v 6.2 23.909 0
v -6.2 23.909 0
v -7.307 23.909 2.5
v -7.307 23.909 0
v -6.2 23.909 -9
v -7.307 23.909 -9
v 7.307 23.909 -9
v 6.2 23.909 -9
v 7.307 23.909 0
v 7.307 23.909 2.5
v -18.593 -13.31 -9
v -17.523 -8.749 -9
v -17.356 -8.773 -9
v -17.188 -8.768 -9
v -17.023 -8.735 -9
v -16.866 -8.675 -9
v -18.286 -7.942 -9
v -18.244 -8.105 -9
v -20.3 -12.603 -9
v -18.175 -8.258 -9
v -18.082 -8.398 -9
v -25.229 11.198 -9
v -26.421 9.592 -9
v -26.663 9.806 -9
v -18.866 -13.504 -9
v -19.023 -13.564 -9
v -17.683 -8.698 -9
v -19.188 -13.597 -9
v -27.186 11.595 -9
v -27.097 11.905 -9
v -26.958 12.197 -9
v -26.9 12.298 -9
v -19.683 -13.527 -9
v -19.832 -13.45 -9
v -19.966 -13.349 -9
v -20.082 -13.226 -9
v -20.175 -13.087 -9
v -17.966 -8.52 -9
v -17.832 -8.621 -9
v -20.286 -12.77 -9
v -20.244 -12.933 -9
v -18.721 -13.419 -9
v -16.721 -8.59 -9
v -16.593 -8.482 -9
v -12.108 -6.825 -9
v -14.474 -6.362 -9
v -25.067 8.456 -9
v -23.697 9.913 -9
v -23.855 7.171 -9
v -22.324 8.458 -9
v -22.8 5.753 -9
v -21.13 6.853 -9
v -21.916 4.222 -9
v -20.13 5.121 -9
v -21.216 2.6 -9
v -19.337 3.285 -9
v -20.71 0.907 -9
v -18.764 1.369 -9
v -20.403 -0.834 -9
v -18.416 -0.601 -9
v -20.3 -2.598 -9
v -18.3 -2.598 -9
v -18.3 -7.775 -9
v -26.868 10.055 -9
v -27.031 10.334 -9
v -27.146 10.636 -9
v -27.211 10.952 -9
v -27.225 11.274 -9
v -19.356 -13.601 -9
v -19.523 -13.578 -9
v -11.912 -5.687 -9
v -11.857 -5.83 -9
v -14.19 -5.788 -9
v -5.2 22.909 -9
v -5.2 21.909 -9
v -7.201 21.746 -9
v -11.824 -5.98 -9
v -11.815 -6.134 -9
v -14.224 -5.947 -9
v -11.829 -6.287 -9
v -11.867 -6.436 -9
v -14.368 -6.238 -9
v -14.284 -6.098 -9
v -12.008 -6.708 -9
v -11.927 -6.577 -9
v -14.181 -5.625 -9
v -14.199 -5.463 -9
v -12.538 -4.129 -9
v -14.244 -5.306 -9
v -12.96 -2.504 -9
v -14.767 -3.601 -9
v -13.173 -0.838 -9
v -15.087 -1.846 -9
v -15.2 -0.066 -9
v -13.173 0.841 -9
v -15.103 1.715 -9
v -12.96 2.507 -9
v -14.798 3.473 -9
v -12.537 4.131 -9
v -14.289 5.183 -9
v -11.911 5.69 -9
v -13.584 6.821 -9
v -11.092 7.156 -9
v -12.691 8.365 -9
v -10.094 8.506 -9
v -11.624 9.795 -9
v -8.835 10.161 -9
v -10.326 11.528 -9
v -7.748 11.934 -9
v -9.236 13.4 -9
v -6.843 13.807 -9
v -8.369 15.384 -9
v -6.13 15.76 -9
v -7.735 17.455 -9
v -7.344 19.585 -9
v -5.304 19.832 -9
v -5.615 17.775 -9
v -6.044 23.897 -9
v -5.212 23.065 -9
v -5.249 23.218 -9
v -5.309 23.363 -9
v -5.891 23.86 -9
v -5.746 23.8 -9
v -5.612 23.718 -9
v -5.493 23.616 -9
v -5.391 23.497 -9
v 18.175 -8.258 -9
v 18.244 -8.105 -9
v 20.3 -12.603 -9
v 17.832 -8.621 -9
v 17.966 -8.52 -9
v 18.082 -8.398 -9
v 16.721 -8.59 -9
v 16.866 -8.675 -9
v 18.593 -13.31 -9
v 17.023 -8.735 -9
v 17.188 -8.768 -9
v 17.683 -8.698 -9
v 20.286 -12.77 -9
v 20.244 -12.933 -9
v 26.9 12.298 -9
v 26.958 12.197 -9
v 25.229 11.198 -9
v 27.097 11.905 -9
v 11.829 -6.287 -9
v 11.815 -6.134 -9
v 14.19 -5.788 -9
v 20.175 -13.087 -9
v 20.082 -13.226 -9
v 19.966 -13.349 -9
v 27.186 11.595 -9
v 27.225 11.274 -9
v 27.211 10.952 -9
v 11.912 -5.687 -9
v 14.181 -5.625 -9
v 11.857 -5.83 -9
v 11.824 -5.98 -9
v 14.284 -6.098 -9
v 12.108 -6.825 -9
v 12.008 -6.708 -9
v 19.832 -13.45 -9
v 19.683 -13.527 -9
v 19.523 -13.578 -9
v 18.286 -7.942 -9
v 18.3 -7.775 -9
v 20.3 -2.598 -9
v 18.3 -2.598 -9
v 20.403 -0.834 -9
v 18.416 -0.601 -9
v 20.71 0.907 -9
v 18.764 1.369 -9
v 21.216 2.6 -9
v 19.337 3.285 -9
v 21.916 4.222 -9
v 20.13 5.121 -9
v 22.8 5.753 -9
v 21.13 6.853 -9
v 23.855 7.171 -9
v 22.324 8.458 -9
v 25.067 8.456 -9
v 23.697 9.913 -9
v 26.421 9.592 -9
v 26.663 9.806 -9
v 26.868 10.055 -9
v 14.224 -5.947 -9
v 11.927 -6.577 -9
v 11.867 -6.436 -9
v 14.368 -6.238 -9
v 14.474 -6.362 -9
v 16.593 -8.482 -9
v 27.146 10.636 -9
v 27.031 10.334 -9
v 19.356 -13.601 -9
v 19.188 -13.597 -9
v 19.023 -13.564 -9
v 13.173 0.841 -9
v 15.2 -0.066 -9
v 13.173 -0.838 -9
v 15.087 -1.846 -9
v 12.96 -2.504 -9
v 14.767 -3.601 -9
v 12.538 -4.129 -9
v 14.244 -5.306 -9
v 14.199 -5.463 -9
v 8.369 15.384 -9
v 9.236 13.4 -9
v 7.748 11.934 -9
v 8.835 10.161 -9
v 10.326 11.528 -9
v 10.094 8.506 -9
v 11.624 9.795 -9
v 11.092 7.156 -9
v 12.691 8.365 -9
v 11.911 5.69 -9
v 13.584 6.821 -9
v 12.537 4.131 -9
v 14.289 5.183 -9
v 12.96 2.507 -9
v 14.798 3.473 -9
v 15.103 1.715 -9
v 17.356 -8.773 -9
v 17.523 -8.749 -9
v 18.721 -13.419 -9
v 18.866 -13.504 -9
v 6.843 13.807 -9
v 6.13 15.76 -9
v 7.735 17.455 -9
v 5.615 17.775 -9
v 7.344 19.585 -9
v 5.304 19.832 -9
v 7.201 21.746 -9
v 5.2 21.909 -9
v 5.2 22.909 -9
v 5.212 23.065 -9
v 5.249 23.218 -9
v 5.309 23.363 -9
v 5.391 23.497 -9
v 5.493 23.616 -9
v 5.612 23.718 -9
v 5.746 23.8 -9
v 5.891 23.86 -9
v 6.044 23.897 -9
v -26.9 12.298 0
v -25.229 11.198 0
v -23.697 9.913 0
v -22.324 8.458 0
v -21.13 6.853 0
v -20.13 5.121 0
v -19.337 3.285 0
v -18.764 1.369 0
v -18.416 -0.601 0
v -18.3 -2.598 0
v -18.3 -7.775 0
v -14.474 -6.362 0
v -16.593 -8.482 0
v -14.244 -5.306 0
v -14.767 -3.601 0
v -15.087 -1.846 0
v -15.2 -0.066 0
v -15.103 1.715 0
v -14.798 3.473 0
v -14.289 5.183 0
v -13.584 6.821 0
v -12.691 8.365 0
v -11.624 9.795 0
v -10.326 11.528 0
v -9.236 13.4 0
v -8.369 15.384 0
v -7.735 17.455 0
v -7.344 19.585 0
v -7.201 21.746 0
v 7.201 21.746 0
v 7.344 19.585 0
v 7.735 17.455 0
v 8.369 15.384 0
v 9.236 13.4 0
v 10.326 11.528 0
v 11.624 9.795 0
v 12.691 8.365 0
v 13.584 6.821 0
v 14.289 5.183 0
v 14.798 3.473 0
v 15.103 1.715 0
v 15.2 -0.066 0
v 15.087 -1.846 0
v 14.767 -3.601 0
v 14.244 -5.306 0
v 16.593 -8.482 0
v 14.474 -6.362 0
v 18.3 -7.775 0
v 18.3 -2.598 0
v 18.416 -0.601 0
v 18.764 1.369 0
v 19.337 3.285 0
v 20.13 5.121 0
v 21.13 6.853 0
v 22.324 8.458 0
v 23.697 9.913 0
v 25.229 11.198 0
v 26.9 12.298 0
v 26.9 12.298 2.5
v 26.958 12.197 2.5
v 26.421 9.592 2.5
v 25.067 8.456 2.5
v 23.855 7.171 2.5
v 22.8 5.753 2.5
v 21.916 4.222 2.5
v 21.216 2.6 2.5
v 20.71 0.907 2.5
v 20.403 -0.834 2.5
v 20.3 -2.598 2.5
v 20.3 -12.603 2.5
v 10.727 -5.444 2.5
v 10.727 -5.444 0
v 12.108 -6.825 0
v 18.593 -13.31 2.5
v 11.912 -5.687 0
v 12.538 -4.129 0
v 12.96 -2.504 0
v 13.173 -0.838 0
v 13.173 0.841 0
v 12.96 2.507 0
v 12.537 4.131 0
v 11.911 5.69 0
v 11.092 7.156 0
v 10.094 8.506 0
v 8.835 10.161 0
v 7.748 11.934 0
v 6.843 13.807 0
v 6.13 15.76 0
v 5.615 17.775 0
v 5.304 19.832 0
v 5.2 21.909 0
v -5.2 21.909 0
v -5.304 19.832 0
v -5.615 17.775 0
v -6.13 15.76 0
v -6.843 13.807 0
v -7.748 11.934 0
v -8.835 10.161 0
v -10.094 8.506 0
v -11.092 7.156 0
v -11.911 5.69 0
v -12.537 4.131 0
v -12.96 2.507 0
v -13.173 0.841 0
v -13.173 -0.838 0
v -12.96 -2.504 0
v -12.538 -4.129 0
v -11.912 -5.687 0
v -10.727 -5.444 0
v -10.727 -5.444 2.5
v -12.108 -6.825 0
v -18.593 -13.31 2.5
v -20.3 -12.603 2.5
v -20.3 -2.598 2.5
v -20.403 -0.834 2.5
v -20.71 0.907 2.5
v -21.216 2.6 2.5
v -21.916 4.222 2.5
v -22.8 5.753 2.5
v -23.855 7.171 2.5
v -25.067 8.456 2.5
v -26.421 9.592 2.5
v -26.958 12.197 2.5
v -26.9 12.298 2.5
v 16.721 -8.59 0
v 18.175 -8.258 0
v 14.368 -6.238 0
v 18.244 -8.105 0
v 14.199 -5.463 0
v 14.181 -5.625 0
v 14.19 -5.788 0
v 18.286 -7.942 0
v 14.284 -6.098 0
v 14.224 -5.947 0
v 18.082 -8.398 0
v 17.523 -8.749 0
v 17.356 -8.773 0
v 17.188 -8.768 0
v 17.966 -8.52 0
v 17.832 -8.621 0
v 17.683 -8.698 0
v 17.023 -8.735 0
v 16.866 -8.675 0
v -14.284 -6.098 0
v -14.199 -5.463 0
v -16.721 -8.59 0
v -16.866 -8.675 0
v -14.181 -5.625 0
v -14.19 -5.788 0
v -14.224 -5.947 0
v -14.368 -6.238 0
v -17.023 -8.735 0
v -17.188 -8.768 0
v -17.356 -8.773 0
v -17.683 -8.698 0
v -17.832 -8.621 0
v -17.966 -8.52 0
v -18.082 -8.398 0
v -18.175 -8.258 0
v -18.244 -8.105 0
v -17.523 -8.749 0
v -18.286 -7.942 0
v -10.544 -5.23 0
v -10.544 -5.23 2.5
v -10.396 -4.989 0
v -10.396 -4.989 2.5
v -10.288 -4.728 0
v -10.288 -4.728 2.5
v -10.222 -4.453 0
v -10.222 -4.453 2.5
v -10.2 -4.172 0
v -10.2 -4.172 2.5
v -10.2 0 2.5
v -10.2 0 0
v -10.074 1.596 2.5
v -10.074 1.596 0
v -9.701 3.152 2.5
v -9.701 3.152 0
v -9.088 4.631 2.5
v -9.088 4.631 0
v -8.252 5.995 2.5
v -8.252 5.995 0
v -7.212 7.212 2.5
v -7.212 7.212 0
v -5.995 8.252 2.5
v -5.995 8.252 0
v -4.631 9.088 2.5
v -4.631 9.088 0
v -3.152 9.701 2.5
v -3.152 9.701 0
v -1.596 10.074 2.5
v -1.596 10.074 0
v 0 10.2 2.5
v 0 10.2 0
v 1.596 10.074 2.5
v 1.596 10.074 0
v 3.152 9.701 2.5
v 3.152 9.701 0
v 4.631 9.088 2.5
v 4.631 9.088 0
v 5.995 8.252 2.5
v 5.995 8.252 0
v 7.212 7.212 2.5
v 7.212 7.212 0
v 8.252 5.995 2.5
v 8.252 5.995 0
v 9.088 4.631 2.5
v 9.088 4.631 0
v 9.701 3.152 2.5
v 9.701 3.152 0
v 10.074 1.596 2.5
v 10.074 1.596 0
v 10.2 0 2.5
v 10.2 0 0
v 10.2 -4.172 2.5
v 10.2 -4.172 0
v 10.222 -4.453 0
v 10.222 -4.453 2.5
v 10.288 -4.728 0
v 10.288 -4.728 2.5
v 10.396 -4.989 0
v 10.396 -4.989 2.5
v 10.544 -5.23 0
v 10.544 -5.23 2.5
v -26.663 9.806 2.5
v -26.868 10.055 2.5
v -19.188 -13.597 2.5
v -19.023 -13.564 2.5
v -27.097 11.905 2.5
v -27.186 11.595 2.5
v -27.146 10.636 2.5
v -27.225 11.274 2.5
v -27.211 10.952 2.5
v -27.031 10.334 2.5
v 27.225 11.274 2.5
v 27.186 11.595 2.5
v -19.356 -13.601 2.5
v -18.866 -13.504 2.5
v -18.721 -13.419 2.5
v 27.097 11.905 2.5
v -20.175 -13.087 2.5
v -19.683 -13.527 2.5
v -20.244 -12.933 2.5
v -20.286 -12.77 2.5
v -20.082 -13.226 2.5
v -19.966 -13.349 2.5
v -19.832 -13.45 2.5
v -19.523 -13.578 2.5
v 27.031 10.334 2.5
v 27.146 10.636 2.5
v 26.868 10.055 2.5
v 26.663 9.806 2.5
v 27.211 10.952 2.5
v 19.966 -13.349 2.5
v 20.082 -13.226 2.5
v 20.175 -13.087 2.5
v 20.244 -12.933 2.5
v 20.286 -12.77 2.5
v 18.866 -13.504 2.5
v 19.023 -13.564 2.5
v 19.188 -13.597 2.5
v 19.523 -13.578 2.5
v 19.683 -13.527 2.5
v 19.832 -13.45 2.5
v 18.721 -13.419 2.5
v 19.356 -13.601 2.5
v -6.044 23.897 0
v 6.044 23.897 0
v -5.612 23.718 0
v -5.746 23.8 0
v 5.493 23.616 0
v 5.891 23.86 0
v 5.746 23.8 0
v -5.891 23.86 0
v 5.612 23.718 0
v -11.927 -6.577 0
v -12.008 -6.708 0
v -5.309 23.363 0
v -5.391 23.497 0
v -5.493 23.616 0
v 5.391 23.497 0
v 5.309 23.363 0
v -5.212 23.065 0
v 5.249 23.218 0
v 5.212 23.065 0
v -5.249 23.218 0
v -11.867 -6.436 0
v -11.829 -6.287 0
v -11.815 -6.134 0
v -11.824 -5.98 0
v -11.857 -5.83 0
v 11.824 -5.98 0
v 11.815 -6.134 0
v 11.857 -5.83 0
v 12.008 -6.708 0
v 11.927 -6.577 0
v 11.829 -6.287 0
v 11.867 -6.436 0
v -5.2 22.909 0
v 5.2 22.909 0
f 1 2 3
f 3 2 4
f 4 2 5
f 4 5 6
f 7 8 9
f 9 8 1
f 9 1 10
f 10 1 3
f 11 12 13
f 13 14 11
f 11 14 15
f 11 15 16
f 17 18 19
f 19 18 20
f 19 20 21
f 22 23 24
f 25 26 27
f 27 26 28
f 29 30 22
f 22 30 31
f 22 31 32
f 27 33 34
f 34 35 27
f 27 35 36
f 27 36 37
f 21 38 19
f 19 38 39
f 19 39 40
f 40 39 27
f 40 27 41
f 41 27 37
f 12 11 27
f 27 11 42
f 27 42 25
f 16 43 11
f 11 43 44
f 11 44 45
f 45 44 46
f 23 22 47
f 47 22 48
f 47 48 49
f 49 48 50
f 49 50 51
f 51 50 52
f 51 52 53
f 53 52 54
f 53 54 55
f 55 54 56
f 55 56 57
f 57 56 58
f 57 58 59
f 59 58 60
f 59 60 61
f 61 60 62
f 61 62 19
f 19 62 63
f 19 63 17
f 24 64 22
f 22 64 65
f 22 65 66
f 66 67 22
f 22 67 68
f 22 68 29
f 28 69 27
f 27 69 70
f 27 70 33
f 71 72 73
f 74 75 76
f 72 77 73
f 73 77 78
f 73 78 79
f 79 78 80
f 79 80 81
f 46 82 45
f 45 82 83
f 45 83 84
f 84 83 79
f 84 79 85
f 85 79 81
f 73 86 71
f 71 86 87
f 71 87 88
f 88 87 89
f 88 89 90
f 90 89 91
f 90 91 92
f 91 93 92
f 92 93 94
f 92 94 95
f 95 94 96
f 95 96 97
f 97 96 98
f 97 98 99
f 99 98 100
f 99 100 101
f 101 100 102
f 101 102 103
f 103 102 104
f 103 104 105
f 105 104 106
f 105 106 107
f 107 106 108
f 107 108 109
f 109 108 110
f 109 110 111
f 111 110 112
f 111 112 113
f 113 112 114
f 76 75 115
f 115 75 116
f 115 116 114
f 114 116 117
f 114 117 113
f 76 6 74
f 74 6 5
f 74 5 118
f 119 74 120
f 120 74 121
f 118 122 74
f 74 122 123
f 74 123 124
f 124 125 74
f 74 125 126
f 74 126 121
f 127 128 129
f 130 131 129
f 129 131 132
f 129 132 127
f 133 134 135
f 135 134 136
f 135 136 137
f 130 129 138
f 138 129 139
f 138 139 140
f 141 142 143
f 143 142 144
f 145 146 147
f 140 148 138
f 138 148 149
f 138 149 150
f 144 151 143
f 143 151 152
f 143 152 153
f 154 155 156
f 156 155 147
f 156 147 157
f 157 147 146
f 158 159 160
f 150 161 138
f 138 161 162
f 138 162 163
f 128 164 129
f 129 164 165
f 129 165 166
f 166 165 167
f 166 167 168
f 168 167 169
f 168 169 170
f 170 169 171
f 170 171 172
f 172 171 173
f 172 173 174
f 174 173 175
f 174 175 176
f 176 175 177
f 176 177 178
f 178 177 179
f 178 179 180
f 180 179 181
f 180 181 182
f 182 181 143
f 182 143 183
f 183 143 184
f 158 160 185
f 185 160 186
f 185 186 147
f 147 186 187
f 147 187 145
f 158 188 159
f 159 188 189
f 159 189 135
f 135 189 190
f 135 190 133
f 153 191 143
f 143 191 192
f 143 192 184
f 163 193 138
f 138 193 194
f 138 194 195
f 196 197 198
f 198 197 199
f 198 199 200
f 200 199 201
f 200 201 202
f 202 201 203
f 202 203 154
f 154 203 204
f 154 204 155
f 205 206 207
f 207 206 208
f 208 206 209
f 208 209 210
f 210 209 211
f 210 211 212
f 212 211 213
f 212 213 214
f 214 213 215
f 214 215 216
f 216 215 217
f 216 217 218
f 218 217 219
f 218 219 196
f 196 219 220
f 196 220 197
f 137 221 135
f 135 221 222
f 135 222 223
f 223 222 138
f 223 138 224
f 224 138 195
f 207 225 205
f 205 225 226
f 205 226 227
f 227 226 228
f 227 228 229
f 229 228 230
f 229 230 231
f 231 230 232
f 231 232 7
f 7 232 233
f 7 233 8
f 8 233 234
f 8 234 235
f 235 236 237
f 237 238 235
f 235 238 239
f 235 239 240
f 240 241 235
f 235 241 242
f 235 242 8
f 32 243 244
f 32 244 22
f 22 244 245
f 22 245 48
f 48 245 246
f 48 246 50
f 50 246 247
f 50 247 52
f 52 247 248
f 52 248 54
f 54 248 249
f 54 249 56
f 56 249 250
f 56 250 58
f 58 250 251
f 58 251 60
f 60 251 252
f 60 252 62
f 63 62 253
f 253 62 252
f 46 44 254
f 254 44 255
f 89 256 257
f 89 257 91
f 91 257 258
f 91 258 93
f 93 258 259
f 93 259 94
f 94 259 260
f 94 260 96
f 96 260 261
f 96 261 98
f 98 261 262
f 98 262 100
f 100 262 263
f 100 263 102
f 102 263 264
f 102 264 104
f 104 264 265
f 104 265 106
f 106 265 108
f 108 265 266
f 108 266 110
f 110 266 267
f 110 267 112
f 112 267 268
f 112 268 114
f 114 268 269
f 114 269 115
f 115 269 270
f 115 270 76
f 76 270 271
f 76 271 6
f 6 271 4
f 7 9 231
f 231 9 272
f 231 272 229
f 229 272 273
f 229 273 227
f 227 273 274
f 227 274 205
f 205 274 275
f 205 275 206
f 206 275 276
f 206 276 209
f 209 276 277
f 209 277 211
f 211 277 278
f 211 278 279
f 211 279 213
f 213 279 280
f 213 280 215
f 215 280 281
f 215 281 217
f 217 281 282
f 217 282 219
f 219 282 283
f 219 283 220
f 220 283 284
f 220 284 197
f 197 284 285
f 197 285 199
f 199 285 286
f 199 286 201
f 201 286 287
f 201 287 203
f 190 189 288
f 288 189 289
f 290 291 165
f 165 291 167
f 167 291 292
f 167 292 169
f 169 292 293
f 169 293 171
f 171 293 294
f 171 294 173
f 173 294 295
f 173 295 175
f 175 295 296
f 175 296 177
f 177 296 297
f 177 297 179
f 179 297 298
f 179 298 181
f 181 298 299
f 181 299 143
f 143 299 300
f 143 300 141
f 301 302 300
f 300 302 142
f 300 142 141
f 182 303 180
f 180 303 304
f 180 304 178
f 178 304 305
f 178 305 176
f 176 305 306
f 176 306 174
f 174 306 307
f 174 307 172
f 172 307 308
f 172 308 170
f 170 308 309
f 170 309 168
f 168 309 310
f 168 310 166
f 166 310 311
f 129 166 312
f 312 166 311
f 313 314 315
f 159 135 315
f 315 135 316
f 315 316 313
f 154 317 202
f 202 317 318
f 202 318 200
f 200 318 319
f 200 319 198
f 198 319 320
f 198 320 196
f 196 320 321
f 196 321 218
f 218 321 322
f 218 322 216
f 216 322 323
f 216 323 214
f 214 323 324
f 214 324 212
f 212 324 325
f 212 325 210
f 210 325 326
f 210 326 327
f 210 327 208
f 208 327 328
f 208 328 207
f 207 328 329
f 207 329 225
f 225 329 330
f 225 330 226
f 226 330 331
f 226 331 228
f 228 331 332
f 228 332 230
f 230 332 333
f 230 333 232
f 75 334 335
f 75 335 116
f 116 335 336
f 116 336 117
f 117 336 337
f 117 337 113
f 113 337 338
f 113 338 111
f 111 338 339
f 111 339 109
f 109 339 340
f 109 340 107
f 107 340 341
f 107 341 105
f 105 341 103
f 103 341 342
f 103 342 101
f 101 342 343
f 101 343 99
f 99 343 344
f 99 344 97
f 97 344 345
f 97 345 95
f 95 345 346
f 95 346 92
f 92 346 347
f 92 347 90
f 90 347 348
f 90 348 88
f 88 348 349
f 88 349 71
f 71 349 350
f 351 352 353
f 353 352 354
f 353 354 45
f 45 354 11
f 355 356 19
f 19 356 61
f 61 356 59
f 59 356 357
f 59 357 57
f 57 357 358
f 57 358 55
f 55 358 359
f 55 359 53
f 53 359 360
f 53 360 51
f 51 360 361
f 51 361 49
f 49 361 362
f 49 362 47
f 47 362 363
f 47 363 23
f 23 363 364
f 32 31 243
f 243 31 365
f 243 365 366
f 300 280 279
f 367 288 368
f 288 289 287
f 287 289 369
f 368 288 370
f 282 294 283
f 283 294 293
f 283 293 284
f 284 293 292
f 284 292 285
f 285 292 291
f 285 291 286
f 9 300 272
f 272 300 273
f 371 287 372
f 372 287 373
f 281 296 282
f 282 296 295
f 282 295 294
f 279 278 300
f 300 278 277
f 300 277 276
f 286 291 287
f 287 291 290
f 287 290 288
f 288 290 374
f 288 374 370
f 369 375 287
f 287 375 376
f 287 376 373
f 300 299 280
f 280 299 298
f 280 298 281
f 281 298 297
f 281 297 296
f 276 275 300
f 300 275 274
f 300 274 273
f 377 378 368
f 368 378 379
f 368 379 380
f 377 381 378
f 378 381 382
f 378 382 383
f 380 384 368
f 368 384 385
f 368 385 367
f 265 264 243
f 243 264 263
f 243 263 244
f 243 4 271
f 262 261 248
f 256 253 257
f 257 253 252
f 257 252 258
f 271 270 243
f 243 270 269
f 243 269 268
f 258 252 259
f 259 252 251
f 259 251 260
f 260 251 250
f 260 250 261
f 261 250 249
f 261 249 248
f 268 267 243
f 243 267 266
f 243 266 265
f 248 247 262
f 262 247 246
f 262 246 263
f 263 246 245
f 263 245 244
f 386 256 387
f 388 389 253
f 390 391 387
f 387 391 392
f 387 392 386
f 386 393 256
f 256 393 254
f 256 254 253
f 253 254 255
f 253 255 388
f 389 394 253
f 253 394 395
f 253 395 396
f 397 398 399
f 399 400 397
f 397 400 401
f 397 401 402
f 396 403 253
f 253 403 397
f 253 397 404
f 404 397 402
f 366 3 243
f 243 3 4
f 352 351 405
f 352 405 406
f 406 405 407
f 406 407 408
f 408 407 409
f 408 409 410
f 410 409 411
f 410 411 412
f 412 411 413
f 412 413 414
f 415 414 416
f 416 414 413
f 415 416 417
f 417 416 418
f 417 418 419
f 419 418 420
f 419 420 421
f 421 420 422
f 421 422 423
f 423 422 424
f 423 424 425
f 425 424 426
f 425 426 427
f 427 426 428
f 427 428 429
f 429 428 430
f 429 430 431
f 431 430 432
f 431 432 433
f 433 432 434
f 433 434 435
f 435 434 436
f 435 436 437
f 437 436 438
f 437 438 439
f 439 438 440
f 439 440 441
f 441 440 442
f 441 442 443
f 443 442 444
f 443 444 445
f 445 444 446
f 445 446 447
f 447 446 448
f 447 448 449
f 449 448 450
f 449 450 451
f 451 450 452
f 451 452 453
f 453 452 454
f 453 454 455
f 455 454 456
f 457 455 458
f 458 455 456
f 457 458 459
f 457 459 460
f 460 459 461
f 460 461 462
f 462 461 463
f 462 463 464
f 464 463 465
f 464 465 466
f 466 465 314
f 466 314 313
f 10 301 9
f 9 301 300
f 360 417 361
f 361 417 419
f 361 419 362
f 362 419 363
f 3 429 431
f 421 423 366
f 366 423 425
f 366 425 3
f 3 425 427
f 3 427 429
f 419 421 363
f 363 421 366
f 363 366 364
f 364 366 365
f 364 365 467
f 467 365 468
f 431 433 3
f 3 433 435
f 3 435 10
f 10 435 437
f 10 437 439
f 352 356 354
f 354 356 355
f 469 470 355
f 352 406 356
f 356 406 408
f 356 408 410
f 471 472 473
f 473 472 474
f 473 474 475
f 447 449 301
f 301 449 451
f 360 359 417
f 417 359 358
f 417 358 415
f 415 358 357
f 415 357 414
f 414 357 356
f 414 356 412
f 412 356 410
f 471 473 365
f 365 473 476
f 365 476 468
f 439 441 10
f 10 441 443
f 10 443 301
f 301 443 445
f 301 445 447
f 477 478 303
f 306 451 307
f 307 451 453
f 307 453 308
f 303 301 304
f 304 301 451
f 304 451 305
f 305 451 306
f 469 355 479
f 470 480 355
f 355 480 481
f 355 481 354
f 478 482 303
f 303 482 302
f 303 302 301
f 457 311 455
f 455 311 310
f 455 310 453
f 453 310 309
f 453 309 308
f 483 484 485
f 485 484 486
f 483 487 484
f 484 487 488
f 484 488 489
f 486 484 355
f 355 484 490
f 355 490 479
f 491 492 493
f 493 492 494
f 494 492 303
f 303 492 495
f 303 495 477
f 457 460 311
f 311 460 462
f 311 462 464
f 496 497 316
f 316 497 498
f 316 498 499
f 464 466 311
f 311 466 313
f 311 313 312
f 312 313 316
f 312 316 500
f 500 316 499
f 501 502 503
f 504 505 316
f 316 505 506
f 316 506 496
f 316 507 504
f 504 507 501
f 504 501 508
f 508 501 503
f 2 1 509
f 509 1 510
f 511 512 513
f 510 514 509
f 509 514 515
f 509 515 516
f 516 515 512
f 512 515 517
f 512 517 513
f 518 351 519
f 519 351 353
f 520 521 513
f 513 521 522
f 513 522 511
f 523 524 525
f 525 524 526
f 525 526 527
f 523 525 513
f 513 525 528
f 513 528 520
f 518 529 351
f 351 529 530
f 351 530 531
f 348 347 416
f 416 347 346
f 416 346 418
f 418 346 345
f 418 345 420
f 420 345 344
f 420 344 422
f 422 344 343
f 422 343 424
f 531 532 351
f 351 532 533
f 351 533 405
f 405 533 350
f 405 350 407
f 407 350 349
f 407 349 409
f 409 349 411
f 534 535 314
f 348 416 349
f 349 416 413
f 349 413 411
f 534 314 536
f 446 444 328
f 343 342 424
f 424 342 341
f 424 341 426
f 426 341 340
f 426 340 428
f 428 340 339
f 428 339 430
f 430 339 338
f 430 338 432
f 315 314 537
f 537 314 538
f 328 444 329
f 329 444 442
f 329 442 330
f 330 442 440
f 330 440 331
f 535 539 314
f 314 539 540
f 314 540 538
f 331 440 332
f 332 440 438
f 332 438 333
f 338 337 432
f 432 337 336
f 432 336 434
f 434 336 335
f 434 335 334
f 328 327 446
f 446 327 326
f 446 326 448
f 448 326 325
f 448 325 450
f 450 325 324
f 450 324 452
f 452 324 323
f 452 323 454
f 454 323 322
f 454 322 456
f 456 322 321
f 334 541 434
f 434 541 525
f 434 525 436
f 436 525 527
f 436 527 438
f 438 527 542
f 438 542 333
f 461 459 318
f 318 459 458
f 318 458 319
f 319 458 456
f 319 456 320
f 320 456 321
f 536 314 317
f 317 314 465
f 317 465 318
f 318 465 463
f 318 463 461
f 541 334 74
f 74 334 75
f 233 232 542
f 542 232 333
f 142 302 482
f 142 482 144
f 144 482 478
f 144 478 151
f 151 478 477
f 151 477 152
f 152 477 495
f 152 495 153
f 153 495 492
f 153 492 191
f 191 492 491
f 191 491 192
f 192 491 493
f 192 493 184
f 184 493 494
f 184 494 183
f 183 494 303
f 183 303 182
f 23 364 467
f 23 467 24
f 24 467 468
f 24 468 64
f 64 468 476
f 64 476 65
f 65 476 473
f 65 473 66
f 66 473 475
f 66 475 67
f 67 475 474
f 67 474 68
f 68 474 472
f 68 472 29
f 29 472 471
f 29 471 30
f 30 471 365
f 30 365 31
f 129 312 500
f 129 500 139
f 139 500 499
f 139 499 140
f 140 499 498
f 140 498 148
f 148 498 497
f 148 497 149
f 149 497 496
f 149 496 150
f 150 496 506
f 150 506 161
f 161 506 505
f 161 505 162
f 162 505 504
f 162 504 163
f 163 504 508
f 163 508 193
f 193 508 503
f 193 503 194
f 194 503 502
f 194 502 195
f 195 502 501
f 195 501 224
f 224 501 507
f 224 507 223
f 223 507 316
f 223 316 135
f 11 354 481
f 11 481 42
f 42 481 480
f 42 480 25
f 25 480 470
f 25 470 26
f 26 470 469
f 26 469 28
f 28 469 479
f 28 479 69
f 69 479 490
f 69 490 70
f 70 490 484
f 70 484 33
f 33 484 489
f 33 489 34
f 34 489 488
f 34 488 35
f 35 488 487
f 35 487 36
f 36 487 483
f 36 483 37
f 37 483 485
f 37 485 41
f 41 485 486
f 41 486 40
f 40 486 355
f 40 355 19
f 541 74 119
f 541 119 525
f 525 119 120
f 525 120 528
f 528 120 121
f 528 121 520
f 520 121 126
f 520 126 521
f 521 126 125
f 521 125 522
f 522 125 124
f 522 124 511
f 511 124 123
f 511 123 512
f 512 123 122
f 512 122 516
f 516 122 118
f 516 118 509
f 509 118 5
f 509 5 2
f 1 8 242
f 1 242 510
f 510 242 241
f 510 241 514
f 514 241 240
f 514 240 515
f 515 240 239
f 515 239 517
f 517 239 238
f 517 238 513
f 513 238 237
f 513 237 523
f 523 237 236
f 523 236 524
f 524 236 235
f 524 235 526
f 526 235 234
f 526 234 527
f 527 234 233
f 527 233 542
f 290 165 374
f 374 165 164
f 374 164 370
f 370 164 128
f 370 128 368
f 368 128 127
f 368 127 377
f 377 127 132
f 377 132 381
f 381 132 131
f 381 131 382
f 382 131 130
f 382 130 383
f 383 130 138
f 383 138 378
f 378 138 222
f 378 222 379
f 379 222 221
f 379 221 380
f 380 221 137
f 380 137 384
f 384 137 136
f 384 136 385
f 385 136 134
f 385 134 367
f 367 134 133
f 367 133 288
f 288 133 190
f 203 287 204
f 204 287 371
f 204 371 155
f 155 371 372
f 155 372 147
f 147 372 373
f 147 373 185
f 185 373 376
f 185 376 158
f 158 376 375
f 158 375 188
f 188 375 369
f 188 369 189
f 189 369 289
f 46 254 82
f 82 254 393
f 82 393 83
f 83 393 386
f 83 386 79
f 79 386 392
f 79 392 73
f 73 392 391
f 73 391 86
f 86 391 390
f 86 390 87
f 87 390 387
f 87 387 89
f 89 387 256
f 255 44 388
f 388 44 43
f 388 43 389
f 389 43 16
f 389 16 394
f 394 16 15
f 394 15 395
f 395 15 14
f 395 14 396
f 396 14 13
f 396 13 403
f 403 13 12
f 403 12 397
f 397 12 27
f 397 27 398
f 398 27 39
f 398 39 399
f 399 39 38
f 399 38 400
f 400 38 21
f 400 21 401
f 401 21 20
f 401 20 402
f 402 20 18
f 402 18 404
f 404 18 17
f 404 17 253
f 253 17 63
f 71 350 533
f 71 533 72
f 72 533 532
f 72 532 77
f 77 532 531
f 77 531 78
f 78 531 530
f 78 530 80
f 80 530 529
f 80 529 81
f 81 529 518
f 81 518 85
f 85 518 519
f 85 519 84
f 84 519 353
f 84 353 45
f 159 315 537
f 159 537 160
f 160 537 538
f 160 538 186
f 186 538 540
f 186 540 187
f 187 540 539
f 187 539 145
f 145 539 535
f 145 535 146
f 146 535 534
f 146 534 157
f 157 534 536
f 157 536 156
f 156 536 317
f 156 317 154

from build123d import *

# Parameters (mm, degrees)
EXTRUDE_THIN1_DEPTH = 9
BOSS_EXTRUDE1_START = 2.5
BOSS_EXTRUDE1_DEPTH = 2.5
SKETCH7_W           = 10.4
SKETCH7_H           = 2
CUT_EXTRUDE2_DEPTH  = 9
FILLET1_R           = 2
FILLET2_R           = 1
FILLET3_R           = 1


with BuildPart() as part:
    # Sketch4 → Extrude-Thin1 (new body)
    with BuildSketch(Plane.XY):
        with BuildLine():
            ThreePointArc((-27.9, 10.565509926), (-22.336413862, 5.001923789), (-20.3, -2.598076211))
            Line((-20.3, -2.598076211), (-20.3, -13))
            ThreePointArc((-20.3, -13), (-20.132058957, -13.759199288), (-19.659573823, -14.37673111))
            Line((-19.659573823, -14.37673111), (-11.593677676, -6.310834964))
            ThreePointArc((-11.593677676, -6.310834964), (-13.132911027, 1.329153101), (-10.094117647, 8.505809128))
            ThreePointArc((-10.094117647, 8.505809128), (-6.461802118, 14.774561158), (-5.2, 21.9089023))
            Line((-5.2, 21.9089023), (5.2, 21.9089023))
            ThreePointArc((5.2, 21.9089023), (6.461802118, 14.774561158), (10.094117647, 8.505809128))
            ThreePointArc((10.094117647, 8.505809128), (13.132911027, 1.329153101), (11.593677676, -6.310834964))
            Line((11.593677676, -6.310834964), (19.659573823, -14.37673111))
            ThreePointArc((19.659573823, -14.37673111), (20.132058957, -13.759199288), (20.3, -13))
            Line((20.3, -13), (20.3, -2.598076211))
            ThreePointArc((20.3, -2.598076211), (22.336413862, 5.001923789), (27.9, 10.565509926))
            Line((27.9, 10.565509926), (26.9, 12.297560734))
            ThreePointArc((26.9, 12.297560734), (20.604363055, 6.001923789), (18.3, -2.598076211))
            Line((18.3, -2.598076211), (18.3, -10.188730163))
            Line((18.3, -10.188730163), (14.009117998, -5.897848161))
            ThreePointArc((14.009117998, -5.897848161), (15.027346247, 2.28448348), (11.623529412, 9.794568087))
            ThreePointArc((11.623529412, 9.794568087), (8.022061411, 16.410382128), (7.306685687, 23.9089023))
            Line((7.306685687, 23.9089023), (-7.306685687, 23.9089023))
            ThreePointArc((-7.306685687, 23.9089023), (-8.022061411, 16.410382128), (-11.623529412, 9.794568087))
            ThreePointArc((-11.623529412, 9.794568087), (-15.027346247, 2.28448348), (-14.009117998, -5.897848161))
            Line((-14.009117998, -5.897848161), (-18.3, -10.188730163))
            Line((-18.3, -10.188730163), (-18.3, -2.598076211))
            ThreePointArc((-18.3, -2.598076211), (-20.604363055, 6.001923789), (-26.9, 12.297560734))
            Line((-26.9, 12.297560734), (-27.9, 10.565509926))
        make_face()
    extrude(amount=-EXTRUDE_THIN1_DEPTH)

    # Sketch5 → Boss-Extrude1 (add)
    with BuildSketch(Plane.XY.offset(BOSS_EXTRUDE1_START)):
        with BuildLine():
            Line((-26.9, 12.297560734), (-7.306685687, 23.9089023))
            ThreePointArc((-7.306685687, 23.9089023), (-8.022061411, 16.410382128), (-11.623529412, 9.794568087))
            ThreePointArc((-11.623529412, 9.794568087), (-15.027346247, 2.28448348), (-14.009117998, -5.897848161))
            Line((-14.009117998, -5.897848161), (-18.3, -10.188730163))
            Line((-18.3, -10.188730163), (-18.3, -2.598076211))
            ThreePointArc((-18.3, -2.598076211), (-20.604363055, 6.001923789), (-26.9, 12.297560734))
        make_face()
        with BuildLine():
            ThreePointArc((-18.3, -2.598076211), (-20.604363055, 6.001923789), (-26.9, 12.297560734))
            Line((-26.9, 12.297560734), (-27.9, 10.565509926))
            ThreePointArc((-27.9, 10.565509926), (-22.336413862, 5.001923789), (-20.3, -2.598076211))
            Line((-20.3, -2.598076211), (-20.3, -13))
            ThreePointArc((-20.3, -13), (-20.132058957, -13.759199288), (-19.659573823, -14.37673111))
            Line((-19.659573823, -14.37673111), (-19.555634919, -14.272792206))
            Line((-19.555634919, -14.272792206), (-11.593677676, -6.310834964))
            ThreePointArc((-11.593677676, -6.310834964), (-13.132911027, 1.329153101), (-10.094117647, 8.505809128))
            ThreePointArc((-10.094117647, 8.505809128), (-6.461802118, 14.774561158), (-5.2, 21.9089023))
            Line((-5.2, 21.9089023), (5.2, 21.9089023))
            ThreePointArc((5.2, 21.9089023), (6.461802118, 14.774561158), (10.094117647, 8.505809128))
            ThreePointArc((10.094117647, 8.505809128), (13.132911027, 1.329153101), (11.593677676, -6.310834964))
            Line((11.593677676, -6.310834964), (19.555634919, -14.272792206))
            Line((19.555634919, -14.272792206), (19.659573823, -14.37673111))
            ThreePointArc((19.659573823, -14.37673111), (20.132058957, -13.759199288), (20.3, -13))
            Line((20.3, -13), (20.3, -2.598076211))
            ThreePointArc((20.3, -2.598076211), (22.336413862, 5.001923789), (27.9, 10.565509926))
            Line((27.9, 10.565509926), (26.9, 12.297560734))
            ThreePointArc((26.9, 12.297560734), (20.604363055, 6.001923789), (18.3, -2.598076211))
            Line((18.3, -2.598076211), (18.3, -10.188730163))
            Line((18.3, -10.188730163), (14.009117998, -5.897848161))
            ThreePointArc((14.009117998, -5.897848161), (15.027346247, 2.28448348), (11.623529412, 9.794568087))
            ThreePointArc((11.623529412, 9.794568087), (8.022061411, 16.410382128), (7.306685687, 23.9089023))
            Line((7.306685687, 23.9089023), (-7.306685687, 23.9089023))
            ThreePointArc((-7.306685687, 23.9089023), (-8.022061411, 16.410382128), (-11.623529412, 9.794568087))
            ThreePointArc((-11.623529412, 9.794568087), (-15.027346247, 2.28448348), (-14.009117998, -5.897848161))
            Line((-14.009117998, -5.897848161), (-18.3, -10.188730163))
            Line((-18.3, -10.188730163), (-18.3, -2.598076211))
        make_face()
        with BuildLine():
            Line((7.306685687, 23.9089023), (26.9, 12.297560734))
            ThreePointArc((26.9, 12.297560734), (20.604363055, 6.001923789), (18.3, -2.598076211))
            Line((18.3, -2.598076211), (18.3, -10.188730163))
            Line((18.3, -10.188730163), (14.009117998, -5.897848161))
            ThreePointArc((14.009117998, -5.897848161), (15.027346247, 2.28448348), (11.623529412, 9.794568087))
            ThreePointArc((11.623529412, 9.794568087), (8.022061411, 16.410382128), (7.306685687, 23.9089023))
        make_face()
        with BuildLine():
            ThreePointArc((-10.094117647, 8.505809128), (-13.132911027, 1.329153101), (-11.593677676, -6.310834964))
            Line((-11.593677676, -6.310834964), (-10.727207794, -5.444365081))
            ThreePointArc((-10.727207794, -5.444365081), (-10.337016841, -4.860403054), (-10.2, -4.171572875))
            Line((-10.2, -4.171572875), (-10.2, 0))
            ThreePointArc((-10.2, 0), (0, 10.2), (10.2, 0))
            Line((10.2, 0), (10.2, -4.171572875))
            ThreePointArc((10.2, -4.171572875), (10.337016841, -4.860403054), (10.727207794, -5.444365081))
            Line((10.727207794, -5.444365081), (11.593677676, -6.310834964))
            ThreePointArc((11.593677676, -6.310834964), (13.132911027, 1.329153101), (10.094117647, 8.505809128))
            ThreePointArc((10.094117647, 8.505809128), (6.461802118, 14.774561158), (5.2, 21.9089023))
            Line((5.2, 21.9089023), (-5.2, 21.9089023))
            ThreePointArc((-5.2, 21.9089023), (-6.461802118, 14.774561158), (-10.094117647, 8.505809128))
        make_face()
    extrude(amount=-BOSS_EXTRUDE1_DEPTH)

    # Sketch7 → Cut-Extrude2 (cut)
    with BuildSketch(Plane.XY.offset(-9)):
        with Locations((0, 22.9089023)):
            Rectangle(SKETCH7_W, SKETCH7_H)
    extrude(amount=CUT_EXTRUDE2_DEPTH, mode=Mode.SUBTRACT)

    # Fillet1
    fillet1_edges = [part.edges().sort_by_distance(p)[0] for p in [
        (27.9, 10.565509926, -3.25),
        (-27.9, 10.565509926, -3.25),
    ]]
    fillet(fillet1_edges, radius=FILLET1_R)

    # Fillet2
    # the kernel refuses this fillet: 1 mm, written as the material it takes off along each edge
    with BuildSketch(Plane(origin=(19.659573823, -14.37673111, -13.714649626), x_dir=(0.33959372810271005, 0.9405722193608009, 0), z_dir=(0, 0, 1))) as fillet2_piece_1:
        with BuildLine():
            CenterArc((1.546266122, 0.940572219), FILLET2_R, 154.852123731, 135)
            Line((0.6410521, 1.365528186), (0.550530698, 1.408023783))
            Line((0.550530698, 1.408023783), (-0.090521402, 0.042495597))
            Line((-0.090521402, 0.042495597), (-0.050062835, -0.086566232))
            ThreePointArc((-0.050062835, -0.086566232), (1.546359122, -0.228895043), (1.919819223, -0.094057222))
            Line((1.919819223, -0.094057222), (1.885859851, 0))
        make_face()
    extrude(amount=20.929299253, mode=Mode.SUBTRACT)
    with BuildSketch(Plane(origin=(-19.659573823, -14.37673111, -13.714649626), x_dir=(-0.3395937281027359, 0.9405722193607915, 0), z_dir=(0, 0, 1))) as fillet2_piece_2:
        with BuildLine():
            CenterArc((1.546266122, -0.940572219), FILLET2_R, 70.147876269, 135)
            Line((0.6410521, -1.365528186), (0.550530698, -1.408023783))
            Line((0.550530698, -1.408023783), (-0.090521402, -0.042495597))
            Line((-0.090521402, -0.042495597), (-0.050062835, 0.086566232))
            ThreePointArc((-0.050062835, 0.086566232), (1.546359122, 0.228895043), (1.919819223, 0.094057222))
            Line((1.919819223, 0.094057222), (1.885859851, 0))
        make_face()
    extrude(amount=20.929299253, mode=Mode.SUBTRACT)

    # Fillet3
    fillet3_edges = [part.edges().sort_by_distance(p)[0] for p in [
        (-5.2, 23.9089023, -4.5),
        (5.2, 23.9089023, -4.5),
        (-18.3, -10.188730163, -4.5),
        (-14.009117998, -5.897848161, -4.5),
        (14.009117998, -5.897848161, -4.5),
        (18.3, -10.188730163, -4.5),
        (11.593677676, -6.310834964, -4.5),
        (-11.593677676, -6.310834964, -4.5),
    ]]
    fillet(fillet3_edges, radius=FILLET3_R)


solid = part.part
